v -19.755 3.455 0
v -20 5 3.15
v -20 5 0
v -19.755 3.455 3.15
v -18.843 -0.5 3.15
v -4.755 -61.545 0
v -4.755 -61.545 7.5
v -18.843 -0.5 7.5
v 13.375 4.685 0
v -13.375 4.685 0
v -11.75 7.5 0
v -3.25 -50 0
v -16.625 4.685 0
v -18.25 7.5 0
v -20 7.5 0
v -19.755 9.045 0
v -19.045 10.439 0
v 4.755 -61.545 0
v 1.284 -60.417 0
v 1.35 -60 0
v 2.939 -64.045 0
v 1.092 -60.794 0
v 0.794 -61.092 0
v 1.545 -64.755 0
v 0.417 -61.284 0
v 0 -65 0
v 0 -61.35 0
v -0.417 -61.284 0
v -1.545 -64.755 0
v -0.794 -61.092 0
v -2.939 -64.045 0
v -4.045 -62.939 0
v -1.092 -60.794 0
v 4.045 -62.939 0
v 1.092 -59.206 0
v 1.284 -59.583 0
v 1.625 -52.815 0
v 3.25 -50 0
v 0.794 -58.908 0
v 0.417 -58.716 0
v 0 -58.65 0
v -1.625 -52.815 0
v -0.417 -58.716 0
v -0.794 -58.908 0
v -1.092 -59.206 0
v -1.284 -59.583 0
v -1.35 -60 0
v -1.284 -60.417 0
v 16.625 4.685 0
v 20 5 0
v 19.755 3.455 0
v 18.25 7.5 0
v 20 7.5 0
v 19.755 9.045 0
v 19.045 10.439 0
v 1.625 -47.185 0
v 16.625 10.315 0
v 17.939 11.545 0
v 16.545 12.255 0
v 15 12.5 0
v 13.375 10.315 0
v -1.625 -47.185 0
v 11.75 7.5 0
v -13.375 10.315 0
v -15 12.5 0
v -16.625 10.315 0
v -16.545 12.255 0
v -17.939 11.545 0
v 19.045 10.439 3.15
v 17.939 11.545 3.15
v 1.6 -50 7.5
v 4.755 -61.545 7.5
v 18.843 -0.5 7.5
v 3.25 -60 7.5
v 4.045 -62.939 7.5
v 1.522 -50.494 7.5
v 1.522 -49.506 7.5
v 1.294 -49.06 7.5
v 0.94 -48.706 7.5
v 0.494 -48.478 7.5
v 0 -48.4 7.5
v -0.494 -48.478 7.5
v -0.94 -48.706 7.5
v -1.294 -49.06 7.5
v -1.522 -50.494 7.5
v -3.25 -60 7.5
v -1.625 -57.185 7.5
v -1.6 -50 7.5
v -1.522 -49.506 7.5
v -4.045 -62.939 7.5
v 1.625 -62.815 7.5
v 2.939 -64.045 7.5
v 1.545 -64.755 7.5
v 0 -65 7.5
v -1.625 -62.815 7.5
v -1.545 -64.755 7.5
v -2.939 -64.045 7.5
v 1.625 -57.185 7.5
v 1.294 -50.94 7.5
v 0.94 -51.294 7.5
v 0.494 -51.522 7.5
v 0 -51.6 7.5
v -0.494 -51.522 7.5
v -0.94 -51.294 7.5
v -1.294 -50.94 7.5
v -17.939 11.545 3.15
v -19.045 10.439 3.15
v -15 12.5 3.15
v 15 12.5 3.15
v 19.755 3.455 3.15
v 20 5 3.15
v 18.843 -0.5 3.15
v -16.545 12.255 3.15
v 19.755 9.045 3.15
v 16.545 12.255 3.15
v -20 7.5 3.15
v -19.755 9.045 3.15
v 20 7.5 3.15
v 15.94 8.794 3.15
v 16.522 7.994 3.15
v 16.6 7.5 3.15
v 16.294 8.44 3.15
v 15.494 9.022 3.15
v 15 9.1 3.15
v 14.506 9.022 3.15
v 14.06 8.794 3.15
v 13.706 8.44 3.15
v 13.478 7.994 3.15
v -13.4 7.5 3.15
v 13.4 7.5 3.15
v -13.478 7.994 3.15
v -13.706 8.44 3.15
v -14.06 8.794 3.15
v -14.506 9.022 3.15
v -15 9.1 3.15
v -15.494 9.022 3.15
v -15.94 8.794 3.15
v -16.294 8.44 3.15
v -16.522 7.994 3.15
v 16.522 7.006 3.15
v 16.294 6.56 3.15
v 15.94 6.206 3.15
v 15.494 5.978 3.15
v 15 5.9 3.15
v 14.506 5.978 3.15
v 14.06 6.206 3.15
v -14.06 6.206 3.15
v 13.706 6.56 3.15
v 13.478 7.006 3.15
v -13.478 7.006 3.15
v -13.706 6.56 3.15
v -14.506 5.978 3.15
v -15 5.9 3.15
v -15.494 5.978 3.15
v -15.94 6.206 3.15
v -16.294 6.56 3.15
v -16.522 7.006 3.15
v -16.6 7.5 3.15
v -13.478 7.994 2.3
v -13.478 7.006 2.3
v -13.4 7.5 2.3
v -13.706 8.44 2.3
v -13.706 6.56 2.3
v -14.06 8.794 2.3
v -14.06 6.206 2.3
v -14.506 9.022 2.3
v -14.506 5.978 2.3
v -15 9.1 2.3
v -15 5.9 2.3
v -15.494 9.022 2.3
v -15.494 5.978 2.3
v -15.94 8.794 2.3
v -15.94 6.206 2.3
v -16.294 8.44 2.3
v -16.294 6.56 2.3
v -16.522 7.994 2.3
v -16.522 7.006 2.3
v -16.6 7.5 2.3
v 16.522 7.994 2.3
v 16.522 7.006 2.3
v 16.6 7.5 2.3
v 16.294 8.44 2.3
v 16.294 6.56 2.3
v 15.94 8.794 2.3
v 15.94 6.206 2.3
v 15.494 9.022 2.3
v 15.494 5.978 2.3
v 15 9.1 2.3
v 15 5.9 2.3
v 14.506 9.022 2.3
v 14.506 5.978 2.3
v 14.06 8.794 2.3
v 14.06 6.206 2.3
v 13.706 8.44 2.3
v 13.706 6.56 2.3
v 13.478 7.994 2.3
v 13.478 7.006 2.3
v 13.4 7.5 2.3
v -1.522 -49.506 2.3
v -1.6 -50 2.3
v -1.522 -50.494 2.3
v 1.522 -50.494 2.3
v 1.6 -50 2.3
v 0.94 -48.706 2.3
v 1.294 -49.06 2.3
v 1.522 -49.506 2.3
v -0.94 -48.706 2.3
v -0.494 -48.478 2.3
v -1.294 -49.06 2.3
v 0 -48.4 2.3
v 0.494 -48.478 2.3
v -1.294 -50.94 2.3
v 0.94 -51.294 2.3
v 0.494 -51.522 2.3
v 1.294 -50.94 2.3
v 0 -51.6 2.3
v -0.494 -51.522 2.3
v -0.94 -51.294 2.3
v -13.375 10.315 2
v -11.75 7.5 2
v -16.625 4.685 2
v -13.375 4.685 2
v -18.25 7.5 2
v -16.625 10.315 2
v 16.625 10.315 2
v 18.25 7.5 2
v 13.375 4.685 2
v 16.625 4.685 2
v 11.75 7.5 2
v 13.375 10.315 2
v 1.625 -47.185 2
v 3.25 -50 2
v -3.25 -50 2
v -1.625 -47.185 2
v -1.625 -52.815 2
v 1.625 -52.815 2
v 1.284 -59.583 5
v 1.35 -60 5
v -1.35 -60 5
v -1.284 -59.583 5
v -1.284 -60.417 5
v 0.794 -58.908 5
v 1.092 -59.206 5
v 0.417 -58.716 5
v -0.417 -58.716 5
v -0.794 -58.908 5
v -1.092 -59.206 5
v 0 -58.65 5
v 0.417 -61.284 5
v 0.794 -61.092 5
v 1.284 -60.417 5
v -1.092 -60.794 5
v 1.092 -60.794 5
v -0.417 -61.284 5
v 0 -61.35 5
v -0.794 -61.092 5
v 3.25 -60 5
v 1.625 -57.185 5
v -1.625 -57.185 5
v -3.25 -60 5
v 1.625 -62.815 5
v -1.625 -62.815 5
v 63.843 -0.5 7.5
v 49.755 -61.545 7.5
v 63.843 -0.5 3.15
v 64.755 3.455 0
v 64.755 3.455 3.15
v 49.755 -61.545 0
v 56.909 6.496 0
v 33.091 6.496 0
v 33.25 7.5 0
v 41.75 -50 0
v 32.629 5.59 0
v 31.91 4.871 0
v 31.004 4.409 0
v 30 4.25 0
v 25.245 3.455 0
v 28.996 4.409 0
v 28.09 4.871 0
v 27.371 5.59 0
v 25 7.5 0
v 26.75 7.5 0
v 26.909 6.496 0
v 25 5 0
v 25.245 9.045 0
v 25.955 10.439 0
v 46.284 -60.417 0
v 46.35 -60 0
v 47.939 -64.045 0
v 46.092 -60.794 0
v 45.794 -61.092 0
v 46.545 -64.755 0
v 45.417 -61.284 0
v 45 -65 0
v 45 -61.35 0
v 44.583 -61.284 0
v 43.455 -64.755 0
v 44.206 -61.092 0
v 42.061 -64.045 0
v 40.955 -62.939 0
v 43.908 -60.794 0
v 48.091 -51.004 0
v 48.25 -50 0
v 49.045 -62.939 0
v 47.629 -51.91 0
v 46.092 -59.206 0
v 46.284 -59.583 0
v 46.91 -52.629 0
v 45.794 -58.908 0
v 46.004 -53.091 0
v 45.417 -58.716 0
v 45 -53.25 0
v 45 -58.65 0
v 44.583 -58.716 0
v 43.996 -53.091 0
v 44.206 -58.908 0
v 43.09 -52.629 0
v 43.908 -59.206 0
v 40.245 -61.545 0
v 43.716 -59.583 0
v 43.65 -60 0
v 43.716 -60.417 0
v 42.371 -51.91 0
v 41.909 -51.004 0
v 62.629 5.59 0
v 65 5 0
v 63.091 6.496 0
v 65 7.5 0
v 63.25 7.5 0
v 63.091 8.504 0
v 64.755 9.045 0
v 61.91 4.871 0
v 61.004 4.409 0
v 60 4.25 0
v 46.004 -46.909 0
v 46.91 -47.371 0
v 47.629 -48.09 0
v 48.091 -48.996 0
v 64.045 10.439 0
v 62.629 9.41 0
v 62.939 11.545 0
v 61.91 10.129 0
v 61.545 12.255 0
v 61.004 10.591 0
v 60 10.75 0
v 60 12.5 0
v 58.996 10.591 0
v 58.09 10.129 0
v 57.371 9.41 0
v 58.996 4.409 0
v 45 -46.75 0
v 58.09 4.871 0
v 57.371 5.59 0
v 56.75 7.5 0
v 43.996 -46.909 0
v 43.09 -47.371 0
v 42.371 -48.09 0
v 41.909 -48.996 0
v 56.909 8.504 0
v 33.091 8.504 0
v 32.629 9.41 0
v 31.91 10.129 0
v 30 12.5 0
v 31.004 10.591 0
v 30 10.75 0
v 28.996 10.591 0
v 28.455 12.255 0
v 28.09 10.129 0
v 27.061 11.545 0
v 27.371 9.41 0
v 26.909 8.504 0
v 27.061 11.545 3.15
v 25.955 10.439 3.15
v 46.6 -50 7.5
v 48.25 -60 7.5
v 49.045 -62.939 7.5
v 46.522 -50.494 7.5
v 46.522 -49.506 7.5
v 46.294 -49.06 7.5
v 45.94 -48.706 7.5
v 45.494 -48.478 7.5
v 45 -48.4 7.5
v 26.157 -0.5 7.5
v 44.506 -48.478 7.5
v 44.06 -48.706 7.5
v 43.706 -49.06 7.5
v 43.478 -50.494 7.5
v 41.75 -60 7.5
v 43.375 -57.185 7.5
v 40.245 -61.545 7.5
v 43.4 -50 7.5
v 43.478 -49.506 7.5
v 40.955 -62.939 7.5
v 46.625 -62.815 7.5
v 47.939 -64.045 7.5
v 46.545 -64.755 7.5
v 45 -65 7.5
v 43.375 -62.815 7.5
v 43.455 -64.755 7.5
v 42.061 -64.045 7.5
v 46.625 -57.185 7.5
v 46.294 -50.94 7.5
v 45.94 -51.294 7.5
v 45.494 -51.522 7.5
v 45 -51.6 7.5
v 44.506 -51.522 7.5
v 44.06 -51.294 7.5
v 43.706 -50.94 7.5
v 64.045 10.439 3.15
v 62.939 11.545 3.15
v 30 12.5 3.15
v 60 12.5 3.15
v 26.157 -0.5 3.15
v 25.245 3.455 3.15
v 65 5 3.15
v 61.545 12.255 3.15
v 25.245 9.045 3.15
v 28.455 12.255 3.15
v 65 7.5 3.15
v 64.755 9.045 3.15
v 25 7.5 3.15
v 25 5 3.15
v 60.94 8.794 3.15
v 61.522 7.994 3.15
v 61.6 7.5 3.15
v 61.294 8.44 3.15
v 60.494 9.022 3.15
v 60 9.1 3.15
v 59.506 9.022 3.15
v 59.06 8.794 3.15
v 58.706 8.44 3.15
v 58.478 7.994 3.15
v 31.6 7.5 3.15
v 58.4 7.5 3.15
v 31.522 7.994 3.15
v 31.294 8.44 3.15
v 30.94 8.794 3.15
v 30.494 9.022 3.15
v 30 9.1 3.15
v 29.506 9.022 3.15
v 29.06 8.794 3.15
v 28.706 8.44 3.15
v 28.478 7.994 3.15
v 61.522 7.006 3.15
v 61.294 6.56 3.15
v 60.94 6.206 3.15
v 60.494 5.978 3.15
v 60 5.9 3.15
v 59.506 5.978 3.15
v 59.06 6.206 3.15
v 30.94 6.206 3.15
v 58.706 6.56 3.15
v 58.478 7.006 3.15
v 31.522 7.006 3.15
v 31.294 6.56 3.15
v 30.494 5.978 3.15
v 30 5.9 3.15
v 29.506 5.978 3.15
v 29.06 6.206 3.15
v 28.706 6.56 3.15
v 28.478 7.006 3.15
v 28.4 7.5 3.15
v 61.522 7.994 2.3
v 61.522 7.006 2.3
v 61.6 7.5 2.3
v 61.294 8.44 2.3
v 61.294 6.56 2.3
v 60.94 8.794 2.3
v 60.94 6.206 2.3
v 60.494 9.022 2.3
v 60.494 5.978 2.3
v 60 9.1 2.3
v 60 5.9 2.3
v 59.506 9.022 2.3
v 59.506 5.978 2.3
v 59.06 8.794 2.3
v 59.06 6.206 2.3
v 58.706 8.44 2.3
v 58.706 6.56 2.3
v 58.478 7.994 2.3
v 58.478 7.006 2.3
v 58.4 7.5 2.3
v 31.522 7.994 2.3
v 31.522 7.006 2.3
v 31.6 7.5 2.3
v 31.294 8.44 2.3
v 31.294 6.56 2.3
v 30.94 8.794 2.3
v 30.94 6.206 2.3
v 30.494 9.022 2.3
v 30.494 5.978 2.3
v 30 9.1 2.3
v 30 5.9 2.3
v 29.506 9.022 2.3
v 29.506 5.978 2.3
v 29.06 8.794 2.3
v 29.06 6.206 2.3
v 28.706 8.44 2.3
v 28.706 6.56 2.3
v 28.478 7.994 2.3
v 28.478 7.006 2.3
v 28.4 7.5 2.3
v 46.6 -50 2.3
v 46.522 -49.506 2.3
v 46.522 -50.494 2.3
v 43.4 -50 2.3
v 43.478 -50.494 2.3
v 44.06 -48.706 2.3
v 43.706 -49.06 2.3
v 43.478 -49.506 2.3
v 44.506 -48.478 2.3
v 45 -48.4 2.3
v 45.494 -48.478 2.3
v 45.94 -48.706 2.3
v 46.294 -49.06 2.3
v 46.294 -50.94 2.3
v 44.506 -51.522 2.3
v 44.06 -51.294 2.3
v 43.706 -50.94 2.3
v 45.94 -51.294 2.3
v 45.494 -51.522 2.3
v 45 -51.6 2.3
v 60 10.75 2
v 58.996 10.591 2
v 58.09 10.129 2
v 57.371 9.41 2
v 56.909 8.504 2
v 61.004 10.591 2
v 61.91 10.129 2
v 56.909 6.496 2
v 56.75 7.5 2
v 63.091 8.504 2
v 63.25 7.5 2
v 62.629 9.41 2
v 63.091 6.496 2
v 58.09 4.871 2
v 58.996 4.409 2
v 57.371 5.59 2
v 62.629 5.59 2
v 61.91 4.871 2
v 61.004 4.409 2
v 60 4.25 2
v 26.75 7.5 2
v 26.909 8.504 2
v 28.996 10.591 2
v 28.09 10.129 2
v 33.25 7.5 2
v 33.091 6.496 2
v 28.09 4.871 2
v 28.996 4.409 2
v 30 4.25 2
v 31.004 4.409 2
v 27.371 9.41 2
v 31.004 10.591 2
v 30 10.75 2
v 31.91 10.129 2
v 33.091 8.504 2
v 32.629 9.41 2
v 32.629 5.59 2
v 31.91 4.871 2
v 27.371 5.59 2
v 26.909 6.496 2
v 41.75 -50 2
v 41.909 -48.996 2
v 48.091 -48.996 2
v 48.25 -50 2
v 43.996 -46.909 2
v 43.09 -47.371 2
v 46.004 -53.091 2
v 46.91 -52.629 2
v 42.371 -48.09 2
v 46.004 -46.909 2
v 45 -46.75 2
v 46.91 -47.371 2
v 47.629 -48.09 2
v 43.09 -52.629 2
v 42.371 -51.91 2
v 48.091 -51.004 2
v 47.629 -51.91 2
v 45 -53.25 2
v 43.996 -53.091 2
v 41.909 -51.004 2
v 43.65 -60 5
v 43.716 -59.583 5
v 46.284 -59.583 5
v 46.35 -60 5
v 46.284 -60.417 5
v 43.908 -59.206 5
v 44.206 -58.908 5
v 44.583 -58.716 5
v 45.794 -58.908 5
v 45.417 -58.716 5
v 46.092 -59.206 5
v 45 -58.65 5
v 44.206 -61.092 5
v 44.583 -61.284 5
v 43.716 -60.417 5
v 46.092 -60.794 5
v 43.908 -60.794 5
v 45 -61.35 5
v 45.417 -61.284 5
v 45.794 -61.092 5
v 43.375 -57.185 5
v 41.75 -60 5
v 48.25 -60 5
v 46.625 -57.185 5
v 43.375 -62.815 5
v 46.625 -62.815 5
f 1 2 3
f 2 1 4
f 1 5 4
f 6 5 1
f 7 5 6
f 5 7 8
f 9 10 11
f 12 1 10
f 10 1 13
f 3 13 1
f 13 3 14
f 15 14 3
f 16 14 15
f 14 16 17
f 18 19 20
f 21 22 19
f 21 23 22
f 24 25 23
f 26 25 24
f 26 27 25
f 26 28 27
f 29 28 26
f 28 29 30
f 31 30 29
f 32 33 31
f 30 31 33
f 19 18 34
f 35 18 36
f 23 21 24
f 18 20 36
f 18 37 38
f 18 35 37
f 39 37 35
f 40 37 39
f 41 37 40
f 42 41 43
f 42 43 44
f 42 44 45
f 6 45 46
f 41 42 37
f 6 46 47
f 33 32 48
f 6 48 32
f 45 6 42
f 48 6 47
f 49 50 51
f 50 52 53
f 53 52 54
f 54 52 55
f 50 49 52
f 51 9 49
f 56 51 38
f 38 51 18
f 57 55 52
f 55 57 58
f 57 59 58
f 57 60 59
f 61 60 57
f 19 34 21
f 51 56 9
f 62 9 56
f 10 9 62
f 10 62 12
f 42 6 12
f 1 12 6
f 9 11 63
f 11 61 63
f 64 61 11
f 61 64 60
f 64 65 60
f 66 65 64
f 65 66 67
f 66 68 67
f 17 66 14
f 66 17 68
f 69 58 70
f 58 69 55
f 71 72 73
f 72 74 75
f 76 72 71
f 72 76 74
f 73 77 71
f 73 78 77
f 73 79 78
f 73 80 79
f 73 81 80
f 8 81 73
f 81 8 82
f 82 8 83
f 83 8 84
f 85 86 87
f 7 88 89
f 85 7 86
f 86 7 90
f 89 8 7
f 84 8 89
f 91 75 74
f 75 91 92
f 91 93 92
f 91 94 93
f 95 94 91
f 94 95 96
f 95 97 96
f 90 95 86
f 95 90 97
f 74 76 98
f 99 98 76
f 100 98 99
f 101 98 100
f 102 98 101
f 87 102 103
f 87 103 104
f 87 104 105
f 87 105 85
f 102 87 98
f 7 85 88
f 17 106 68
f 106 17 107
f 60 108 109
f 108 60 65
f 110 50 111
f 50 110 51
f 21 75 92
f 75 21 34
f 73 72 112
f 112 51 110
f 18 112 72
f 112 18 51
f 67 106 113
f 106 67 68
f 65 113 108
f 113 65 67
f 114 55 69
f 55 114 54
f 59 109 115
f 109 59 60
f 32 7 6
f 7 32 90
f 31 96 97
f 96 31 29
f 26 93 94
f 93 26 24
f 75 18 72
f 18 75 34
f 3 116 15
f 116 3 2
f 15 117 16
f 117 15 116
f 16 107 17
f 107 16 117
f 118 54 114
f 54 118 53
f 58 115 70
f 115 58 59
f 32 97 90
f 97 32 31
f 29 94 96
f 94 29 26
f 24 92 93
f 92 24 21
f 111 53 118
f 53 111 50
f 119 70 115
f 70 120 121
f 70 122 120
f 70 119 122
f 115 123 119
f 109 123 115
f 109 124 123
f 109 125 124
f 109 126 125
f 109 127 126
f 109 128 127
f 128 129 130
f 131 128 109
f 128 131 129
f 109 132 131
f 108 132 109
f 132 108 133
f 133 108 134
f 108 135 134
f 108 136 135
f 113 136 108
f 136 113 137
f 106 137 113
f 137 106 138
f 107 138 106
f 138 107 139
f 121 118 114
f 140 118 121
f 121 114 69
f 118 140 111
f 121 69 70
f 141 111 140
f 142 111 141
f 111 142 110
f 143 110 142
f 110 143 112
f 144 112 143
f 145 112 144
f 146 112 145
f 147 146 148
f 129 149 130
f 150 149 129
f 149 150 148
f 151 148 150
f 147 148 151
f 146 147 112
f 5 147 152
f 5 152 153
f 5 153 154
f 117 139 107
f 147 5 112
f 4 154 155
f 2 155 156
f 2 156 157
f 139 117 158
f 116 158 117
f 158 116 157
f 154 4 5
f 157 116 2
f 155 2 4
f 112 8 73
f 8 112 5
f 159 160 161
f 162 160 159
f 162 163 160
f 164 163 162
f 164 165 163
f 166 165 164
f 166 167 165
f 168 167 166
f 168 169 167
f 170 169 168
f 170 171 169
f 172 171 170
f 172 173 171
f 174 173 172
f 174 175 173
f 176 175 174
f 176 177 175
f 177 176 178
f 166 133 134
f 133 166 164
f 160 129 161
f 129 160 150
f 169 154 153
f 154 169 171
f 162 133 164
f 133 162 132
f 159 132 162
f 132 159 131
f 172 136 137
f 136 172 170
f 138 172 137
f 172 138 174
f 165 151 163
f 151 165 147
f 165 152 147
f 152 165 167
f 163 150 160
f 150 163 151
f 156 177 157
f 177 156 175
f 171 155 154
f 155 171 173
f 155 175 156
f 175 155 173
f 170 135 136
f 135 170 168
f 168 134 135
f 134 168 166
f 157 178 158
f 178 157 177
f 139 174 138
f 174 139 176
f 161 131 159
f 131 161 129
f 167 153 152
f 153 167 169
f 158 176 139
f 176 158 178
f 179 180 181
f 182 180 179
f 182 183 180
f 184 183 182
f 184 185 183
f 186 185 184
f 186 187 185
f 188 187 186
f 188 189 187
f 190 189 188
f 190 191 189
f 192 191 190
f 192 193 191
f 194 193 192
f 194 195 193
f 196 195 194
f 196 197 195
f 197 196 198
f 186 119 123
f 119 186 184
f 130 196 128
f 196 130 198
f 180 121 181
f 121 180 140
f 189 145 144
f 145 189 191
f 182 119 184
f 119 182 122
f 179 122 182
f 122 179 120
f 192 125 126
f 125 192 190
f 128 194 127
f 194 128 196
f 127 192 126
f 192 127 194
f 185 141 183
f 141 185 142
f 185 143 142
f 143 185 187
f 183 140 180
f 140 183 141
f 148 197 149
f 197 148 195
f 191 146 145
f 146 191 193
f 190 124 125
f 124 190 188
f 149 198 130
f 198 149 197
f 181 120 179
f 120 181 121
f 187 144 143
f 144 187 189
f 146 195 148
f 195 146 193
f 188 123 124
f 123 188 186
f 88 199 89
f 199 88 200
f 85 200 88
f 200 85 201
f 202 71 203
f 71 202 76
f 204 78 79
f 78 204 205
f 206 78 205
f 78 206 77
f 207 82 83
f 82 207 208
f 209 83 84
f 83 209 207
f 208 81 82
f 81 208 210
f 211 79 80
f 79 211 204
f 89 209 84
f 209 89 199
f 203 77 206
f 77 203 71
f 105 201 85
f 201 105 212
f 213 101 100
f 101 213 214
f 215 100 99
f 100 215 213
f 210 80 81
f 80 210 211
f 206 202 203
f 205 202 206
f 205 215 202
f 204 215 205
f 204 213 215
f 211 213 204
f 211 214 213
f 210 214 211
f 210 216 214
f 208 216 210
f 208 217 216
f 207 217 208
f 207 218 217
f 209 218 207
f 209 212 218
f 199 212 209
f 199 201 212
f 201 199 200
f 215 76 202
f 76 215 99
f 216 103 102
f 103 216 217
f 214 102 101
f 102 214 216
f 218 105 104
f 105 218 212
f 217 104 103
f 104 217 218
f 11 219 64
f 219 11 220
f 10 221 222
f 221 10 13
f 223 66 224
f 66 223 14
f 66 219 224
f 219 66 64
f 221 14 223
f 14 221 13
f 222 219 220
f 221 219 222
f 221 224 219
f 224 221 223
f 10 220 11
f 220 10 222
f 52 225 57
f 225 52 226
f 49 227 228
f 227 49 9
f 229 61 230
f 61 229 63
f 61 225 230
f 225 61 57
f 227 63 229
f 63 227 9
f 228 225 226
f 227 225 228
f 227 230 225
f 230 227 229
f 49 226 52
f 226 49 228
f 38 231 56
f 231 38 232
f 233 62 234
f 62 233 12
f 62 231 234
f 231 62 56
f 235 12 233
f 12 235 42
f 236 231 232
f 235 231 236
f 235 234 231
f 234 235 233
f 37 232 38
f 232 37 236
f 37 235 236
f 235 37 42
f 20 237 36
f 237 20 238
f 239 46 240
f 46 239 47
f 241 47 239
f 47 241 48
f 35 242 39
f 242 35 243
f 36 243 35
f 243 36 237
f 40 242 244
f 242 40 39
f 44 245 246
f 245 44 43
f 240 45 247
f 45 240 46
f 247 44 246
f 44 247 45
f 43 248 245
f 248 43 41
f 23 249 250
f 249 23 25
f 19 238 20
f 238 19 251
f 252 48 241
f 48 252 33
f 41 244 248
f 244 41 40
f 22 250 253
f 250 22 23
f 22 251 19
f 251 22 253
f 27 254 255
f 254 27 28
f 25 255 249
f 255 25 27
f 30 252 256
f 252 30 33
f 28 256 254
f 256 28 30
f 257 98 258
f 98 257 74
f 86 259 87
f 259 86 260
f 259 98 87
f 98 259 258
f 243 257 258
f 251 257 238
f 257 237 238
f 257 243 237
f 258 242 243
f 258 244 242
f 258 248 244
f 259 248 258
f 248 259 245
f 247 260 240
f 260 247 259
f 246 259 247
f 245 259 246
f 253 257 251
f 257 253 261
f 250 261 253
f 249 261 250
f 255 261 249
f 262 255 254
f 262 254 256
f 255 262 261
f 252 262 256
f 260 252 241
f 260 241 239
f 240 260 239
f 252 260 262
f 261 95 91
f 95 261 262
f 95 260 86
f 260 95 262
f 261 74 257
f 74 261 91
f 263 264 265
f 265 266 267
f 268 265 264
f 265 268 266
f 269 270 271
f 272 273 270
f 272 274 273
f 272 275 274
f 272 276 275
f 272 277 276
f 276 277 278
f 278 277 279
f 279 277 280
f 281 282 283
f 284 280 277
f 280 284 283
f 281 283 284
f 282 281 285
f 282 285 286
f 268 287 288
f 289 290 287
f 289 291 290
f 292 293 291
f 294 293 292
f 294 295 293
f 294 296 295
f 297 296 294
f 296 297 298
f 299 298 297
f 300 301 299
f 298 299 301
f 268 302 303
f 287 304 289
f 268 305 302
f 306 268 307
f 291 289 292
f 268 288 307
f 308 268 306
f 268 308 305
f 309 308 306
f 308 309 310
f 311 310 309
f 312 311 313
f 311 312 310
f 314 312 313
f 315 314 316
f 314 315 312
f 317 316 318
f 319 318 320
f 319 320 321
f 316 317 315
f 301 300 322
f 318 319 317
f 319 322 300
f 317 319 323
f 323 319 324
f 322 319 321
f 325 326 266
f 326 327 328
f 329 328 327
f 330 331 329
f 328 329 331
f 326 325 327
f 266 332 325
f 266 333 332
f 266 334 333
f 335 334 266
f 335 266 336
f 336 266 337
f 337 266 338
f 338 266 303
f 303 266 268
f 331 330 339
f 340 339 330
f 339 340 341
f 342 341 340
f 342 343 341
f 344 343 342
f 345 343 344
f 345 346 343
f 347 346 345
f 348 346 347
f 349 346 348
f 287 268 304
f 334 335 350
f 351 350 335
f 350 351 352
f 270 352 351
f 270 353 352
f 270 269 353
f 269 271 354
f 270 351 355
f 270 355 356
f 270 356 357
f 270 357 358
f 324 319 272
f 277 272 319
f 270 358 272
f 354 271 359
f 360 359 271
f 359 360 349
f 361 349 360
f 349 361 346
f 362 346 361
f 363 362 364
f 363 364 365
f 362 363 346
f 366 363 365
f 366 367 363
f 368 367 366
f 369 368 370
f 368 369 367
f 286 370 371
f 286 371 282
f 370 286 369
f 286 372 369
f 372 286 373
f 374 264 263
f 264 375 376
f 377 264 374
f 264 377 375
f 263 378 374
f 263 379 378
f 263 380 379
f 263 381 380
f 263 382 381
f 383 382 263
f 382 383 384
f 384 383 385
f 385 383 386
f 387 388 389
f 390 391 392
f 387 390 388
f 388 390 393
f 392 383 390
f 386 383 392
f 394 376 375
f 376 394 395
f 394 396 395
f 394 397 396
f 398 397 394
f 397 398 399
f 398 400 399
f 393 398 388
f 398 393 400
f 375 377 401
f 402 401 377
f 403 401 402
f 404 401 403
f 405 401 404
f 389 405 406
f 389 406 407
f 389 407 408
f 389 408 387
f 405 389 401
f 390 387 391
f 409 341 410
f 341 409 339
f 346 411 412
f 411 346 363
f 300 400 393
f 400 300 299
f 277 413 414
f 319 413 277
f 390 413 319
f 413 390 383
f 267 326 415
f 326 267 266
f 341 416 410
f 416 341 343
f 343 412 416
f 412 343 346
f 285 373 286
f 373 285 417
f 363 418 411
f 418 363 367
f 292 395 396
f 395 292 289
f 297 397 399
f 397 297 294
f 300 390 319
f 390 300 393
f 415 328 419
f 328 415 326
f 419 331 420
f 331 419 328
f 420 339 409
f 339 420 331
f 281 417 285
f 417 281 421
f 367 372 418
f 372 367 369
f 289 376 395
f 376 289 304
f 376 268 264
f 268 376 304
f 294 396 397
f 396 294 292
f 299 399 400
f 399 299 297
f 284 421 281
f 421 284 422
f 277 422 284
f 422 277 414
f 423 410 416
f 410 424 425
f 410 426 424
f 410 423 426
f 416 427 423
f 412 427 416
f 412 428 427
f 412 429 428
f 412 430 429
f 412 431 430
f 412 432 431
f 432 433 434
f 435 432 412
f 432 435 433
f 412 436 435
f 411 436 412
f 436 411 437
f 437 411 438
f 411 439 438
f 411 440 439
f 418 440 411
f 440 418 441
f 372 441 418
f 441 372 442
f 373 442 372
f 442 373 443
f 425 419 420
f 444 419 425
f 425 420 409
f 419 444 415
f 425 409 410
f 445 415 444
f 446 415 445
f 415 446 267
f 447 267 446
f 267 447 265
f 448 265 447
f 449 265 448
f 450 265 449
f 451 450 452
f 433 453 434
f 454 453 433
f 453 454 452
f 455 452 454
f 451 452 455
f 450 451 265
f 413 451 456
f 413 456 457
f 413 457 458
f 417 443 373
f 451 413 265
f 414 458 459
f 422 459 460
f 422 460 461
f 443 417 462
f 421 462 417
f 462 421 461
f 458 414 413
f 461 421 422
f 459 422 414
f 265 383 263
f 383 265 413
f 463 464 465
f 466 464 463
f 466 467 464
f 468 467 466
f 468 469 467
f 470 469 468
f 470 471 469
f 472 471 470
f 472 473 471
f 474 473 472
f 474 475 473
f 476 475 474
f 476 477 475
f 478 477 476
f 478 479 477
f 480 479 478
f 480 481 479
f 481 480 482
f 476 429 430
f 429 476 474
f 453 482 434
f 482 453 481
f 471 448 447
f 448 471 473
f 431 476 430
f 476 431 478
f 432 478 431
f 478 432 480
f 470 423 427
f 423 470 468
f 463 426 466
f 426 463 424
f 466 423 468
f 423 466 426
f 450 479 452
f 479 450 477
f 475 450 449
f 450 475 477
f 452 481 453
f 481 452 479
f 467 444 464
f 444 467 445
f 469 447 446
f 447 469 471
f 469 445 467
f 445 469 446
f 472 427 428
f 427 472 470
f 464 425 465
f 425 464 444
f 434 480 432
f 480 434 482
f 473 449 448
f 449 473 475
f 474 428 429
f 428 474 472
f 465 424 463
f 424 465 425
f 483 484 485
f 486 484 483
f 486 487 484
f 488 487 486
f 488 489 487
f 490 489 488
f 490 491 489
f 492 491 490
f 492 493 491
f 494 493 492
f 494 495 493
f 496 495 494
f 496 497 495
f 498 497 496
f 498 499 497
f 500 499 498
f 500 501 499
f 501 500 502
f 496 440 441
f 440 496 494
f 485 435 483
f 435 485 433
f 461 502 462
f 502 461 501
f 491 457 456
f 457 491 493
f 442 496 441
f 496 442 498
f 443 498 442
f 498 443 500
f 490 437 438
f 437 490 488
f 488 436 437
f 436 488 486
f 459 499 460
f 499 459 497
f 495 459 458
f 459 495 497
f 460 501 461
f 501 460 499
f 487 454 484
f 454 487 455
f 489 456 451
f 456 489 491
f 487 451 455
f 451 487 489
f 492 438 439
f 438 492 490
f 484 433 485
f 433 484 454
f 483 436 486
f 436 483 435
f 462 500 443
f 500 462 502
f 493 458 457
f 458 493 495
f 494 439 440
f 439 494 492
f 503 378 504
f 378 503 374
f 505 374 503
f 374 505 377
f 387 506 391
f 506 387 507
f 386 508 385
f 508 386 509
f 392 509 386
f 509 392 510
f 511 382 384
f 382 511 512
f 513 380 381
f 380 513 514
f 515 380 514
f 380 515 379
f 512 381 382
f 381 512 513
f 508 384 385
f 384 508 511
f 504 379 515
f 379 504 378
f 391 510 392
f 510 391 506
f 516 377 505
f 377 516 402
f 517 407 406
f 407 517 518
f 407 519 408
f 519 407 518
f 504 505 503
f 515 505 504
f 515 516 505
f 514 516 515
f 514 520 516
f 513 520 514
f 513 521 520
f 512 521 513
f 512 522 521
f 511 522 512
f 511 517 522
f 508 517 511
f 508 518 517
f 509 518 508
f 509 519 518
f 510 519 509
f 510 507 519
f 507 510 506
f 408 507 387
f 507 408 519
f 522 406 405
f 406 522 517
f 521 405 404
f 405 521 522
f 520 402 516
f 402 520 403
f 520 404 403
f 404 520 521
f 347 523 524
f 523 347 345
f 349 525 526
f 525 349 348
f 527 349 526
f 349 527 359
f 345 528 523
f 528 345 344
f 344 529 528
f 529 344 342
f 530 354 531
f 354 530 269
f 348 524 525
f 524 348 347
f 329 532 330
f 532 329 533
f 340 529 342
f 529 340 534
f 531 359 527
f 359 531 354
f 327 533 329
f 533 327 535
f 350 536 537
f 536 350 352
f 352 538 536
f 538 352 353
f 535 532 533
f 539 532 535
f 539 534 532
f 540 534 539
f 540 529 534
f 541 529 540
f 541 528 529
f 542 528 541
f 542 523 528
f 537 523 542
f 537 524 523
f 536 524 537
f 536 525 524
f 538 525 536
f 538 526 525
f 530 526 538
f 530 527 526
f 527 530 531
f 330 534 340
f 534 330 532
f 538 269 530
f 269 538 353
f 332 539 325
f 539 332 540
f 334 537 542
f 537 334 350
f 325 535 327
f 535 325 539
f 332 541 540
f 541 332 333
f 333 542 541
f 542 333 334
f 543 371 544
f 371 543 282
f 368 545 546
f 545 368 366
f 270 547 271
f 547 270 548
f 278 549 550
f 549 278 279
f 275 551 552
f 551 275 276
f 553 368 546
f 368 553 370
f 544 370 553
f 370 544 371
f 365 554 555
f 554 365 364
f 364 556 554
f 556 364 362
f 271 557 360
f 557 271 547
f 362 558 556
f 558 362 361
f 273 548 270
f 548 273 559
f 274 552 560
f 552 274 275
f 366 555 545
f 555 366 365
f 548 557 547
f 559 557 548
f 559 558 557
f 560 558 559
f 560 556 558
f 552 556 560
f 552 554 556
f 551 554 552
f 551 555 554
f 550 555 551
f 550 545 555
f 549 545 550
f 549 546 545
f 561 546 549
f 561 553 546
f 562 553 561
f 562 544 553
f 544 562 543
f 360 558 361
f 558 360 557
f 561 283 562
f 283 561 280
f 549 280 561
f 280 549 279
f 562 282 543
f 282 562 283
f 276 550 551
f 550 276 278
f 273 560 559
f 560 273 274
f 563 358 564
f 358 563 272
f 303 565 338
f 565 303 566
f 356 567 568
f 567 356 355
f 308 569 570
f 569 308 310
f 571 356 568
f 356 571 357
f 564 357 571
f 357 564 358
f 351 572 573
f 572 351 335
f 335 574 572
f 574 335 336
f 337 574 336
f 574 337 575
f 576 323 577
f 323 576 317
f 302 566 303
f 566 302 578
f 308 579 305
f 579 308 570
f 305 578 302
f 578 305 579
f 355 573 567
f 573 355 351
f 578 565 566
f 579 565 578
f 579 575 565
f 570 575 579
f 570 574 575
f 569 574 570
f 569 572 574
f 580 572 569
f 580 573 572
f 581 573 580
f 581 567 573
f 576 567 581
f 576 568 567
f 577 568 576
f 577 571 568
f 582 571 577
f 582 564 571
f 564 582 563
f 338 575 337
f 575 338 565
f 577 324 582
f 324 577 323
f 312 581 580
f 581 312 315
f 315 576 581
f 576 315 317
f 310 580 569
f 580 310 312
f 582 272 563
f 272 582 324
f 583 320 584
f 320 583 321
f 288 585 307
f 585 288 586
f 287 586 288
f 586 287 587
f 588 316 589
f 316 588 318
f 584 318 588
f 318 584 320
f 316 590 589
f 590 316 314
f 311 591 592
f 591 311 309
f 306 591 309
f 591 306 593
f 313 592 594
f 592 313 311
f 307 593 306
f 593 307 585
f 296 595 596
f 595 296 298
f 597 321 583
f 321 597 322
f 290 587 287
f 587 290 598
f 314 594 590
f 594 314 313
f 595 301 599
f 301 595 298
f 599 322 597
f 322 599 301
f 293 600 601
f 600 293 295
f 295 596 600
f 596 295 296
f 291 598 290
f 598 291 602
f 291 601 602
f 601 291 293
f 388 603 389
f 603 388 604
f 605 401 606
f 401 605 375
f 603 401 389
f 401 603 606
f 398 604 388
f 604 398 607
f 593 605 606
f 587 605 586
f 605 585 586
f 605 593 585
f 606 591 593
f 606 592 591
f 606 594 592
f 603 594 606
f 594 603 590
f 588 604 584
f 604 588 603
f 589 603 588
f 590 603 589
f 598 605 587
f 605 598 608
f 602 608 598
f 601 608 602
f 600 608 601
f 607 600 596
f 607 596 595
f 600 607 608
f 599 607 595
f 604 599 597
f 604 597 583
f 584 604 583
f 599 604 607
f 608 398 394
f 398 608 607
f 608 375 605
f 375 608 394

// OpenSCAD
/**
 * Bed supports
 * Created on 16/07/2019
 * Diego Viejo
 *
*/

platformHeight = 9;
Height = platformHeight+6;

module bedSquare(l = 6)
{
    difference()
    {
        hull()
        {
            translate([27.5, 7.5, 0]) cylinder(d=10, h=Height/2, $fn=20);
            translate([7.5, 27.5, 0]) cylinder(d=10, h=Height/2, $fn=20);
            translate([5, 27.5, 0]) cylinder(d=10, h=Height/2, $fn=20);
            translate([-10, -60, 0]) cylinder(d=10, h=Height/2, $fn=20);
        }
        
        //platform 
        translate([-0.5, -0.5, 3.15]) cube([40, 40, Height]);
        
        //connecting bolts
        #translate([7.5, 7.5, 2.3]) cylinder(d=3.2, h=Height/2+2, $fn=20);
        #translate([27.5, 7.5, 2.3]) cylinder(d=3.2, h=Height/2+2, $fn=20);
        #translate([7.5, 27.5, 2.3]) cylinder(d=3.2, h=Height/2+2, $fn=20);
        #translate([0, -40, 2.3]) cylinder(d=3.2, h=Height/2+2, $fn=20);
        #translate([7.5, 7.5, -1]) cylinder(d=6.5, h=3, $fn=l);
        #translate([27.5, 7.5, -1]) cylinder(d=6.5, h=3, $fn=l);
        #translate([7.5, 27.5, -1]) cylinder(d=6.5, h=3, $fn=l);
        #translate([0, -40, -1]) cylinder(d=6.5, h=3, $fn=l);
    
        //bed bolt
        translate([-10, -60, -1]) cylinder(d=2.7, h=Height/2+2, $fn=20);
        translate([-10, -60, Height/2-2.5]) cylinder(d=6.5, h=4, $fn=6);
    
    }
    
}

module bedFlat(l = 6)
{
    difference()
    {
        hull()
        {
            translate([-15, 7.5, 0]) cylinder(d=10, h=Height/2, $fn=20);
            translate([15, 7.5, 0]) cylinder(d=10, h=Height/2, $fn=20);
            translate([-15, 5, 0]) cylinder(d=10, h=Height/2, $fn=20);
            translate([15, 5, 0]) cylinder(d=10, h=Height/2, $fn=20);
            translate([0, -60, 0]) cylinder(d=10, h=Height/2, $fn=20);
        }
        
        //platform
        translate([-25, -0.5, 3.15]) cube([50, 40, Height]);
        
        //connecting bolts
        #translate([-15, 7.5, 2.3]) cylinder(d=3.2, h=Height/2+2, $fn=20);
        #translate([15, 7.5, 2.3]) cylinder(d=3.2, h=Height/2+2, $fn=20);
        #translate([0, -50, 2.3]) cylinder(d=3.2, h=Height/2+2, $fn=20);

        #translate([-15, 7.5, -1]) cylinder(d=6.5, h=3, $fn=l);
        #translate([15, 7.5, -1]) cylinder(d=6.5, h=3, $fn=l);
        #translate([0, -50, -1]) cylinder(d=6.5, h=3, $fn=l);
        
        //bed bolt
        translate([0, -60, -1]) cylinder(d=2.7, h=Height/2+2, $fn=20);
        translate([0, -60, Height/2-2.5]) cylinder(d=6.5, h=4, $fn=6);
    }
}

// squares
//bedSquare();
//translate([70, 0, 0]) mirror([1, 0, 0]) bedSquare(l=20);

//translate([110, 0, 0]) bedSquare(l=20);
//translate([180, 0, 0]) mirror([1, 0, 0]) bedSquare(l=6);

//middle flat
bedFlat();
translate([45, 0, 0]) mirror([1, 0, 0]) bedFlat(l=20);
